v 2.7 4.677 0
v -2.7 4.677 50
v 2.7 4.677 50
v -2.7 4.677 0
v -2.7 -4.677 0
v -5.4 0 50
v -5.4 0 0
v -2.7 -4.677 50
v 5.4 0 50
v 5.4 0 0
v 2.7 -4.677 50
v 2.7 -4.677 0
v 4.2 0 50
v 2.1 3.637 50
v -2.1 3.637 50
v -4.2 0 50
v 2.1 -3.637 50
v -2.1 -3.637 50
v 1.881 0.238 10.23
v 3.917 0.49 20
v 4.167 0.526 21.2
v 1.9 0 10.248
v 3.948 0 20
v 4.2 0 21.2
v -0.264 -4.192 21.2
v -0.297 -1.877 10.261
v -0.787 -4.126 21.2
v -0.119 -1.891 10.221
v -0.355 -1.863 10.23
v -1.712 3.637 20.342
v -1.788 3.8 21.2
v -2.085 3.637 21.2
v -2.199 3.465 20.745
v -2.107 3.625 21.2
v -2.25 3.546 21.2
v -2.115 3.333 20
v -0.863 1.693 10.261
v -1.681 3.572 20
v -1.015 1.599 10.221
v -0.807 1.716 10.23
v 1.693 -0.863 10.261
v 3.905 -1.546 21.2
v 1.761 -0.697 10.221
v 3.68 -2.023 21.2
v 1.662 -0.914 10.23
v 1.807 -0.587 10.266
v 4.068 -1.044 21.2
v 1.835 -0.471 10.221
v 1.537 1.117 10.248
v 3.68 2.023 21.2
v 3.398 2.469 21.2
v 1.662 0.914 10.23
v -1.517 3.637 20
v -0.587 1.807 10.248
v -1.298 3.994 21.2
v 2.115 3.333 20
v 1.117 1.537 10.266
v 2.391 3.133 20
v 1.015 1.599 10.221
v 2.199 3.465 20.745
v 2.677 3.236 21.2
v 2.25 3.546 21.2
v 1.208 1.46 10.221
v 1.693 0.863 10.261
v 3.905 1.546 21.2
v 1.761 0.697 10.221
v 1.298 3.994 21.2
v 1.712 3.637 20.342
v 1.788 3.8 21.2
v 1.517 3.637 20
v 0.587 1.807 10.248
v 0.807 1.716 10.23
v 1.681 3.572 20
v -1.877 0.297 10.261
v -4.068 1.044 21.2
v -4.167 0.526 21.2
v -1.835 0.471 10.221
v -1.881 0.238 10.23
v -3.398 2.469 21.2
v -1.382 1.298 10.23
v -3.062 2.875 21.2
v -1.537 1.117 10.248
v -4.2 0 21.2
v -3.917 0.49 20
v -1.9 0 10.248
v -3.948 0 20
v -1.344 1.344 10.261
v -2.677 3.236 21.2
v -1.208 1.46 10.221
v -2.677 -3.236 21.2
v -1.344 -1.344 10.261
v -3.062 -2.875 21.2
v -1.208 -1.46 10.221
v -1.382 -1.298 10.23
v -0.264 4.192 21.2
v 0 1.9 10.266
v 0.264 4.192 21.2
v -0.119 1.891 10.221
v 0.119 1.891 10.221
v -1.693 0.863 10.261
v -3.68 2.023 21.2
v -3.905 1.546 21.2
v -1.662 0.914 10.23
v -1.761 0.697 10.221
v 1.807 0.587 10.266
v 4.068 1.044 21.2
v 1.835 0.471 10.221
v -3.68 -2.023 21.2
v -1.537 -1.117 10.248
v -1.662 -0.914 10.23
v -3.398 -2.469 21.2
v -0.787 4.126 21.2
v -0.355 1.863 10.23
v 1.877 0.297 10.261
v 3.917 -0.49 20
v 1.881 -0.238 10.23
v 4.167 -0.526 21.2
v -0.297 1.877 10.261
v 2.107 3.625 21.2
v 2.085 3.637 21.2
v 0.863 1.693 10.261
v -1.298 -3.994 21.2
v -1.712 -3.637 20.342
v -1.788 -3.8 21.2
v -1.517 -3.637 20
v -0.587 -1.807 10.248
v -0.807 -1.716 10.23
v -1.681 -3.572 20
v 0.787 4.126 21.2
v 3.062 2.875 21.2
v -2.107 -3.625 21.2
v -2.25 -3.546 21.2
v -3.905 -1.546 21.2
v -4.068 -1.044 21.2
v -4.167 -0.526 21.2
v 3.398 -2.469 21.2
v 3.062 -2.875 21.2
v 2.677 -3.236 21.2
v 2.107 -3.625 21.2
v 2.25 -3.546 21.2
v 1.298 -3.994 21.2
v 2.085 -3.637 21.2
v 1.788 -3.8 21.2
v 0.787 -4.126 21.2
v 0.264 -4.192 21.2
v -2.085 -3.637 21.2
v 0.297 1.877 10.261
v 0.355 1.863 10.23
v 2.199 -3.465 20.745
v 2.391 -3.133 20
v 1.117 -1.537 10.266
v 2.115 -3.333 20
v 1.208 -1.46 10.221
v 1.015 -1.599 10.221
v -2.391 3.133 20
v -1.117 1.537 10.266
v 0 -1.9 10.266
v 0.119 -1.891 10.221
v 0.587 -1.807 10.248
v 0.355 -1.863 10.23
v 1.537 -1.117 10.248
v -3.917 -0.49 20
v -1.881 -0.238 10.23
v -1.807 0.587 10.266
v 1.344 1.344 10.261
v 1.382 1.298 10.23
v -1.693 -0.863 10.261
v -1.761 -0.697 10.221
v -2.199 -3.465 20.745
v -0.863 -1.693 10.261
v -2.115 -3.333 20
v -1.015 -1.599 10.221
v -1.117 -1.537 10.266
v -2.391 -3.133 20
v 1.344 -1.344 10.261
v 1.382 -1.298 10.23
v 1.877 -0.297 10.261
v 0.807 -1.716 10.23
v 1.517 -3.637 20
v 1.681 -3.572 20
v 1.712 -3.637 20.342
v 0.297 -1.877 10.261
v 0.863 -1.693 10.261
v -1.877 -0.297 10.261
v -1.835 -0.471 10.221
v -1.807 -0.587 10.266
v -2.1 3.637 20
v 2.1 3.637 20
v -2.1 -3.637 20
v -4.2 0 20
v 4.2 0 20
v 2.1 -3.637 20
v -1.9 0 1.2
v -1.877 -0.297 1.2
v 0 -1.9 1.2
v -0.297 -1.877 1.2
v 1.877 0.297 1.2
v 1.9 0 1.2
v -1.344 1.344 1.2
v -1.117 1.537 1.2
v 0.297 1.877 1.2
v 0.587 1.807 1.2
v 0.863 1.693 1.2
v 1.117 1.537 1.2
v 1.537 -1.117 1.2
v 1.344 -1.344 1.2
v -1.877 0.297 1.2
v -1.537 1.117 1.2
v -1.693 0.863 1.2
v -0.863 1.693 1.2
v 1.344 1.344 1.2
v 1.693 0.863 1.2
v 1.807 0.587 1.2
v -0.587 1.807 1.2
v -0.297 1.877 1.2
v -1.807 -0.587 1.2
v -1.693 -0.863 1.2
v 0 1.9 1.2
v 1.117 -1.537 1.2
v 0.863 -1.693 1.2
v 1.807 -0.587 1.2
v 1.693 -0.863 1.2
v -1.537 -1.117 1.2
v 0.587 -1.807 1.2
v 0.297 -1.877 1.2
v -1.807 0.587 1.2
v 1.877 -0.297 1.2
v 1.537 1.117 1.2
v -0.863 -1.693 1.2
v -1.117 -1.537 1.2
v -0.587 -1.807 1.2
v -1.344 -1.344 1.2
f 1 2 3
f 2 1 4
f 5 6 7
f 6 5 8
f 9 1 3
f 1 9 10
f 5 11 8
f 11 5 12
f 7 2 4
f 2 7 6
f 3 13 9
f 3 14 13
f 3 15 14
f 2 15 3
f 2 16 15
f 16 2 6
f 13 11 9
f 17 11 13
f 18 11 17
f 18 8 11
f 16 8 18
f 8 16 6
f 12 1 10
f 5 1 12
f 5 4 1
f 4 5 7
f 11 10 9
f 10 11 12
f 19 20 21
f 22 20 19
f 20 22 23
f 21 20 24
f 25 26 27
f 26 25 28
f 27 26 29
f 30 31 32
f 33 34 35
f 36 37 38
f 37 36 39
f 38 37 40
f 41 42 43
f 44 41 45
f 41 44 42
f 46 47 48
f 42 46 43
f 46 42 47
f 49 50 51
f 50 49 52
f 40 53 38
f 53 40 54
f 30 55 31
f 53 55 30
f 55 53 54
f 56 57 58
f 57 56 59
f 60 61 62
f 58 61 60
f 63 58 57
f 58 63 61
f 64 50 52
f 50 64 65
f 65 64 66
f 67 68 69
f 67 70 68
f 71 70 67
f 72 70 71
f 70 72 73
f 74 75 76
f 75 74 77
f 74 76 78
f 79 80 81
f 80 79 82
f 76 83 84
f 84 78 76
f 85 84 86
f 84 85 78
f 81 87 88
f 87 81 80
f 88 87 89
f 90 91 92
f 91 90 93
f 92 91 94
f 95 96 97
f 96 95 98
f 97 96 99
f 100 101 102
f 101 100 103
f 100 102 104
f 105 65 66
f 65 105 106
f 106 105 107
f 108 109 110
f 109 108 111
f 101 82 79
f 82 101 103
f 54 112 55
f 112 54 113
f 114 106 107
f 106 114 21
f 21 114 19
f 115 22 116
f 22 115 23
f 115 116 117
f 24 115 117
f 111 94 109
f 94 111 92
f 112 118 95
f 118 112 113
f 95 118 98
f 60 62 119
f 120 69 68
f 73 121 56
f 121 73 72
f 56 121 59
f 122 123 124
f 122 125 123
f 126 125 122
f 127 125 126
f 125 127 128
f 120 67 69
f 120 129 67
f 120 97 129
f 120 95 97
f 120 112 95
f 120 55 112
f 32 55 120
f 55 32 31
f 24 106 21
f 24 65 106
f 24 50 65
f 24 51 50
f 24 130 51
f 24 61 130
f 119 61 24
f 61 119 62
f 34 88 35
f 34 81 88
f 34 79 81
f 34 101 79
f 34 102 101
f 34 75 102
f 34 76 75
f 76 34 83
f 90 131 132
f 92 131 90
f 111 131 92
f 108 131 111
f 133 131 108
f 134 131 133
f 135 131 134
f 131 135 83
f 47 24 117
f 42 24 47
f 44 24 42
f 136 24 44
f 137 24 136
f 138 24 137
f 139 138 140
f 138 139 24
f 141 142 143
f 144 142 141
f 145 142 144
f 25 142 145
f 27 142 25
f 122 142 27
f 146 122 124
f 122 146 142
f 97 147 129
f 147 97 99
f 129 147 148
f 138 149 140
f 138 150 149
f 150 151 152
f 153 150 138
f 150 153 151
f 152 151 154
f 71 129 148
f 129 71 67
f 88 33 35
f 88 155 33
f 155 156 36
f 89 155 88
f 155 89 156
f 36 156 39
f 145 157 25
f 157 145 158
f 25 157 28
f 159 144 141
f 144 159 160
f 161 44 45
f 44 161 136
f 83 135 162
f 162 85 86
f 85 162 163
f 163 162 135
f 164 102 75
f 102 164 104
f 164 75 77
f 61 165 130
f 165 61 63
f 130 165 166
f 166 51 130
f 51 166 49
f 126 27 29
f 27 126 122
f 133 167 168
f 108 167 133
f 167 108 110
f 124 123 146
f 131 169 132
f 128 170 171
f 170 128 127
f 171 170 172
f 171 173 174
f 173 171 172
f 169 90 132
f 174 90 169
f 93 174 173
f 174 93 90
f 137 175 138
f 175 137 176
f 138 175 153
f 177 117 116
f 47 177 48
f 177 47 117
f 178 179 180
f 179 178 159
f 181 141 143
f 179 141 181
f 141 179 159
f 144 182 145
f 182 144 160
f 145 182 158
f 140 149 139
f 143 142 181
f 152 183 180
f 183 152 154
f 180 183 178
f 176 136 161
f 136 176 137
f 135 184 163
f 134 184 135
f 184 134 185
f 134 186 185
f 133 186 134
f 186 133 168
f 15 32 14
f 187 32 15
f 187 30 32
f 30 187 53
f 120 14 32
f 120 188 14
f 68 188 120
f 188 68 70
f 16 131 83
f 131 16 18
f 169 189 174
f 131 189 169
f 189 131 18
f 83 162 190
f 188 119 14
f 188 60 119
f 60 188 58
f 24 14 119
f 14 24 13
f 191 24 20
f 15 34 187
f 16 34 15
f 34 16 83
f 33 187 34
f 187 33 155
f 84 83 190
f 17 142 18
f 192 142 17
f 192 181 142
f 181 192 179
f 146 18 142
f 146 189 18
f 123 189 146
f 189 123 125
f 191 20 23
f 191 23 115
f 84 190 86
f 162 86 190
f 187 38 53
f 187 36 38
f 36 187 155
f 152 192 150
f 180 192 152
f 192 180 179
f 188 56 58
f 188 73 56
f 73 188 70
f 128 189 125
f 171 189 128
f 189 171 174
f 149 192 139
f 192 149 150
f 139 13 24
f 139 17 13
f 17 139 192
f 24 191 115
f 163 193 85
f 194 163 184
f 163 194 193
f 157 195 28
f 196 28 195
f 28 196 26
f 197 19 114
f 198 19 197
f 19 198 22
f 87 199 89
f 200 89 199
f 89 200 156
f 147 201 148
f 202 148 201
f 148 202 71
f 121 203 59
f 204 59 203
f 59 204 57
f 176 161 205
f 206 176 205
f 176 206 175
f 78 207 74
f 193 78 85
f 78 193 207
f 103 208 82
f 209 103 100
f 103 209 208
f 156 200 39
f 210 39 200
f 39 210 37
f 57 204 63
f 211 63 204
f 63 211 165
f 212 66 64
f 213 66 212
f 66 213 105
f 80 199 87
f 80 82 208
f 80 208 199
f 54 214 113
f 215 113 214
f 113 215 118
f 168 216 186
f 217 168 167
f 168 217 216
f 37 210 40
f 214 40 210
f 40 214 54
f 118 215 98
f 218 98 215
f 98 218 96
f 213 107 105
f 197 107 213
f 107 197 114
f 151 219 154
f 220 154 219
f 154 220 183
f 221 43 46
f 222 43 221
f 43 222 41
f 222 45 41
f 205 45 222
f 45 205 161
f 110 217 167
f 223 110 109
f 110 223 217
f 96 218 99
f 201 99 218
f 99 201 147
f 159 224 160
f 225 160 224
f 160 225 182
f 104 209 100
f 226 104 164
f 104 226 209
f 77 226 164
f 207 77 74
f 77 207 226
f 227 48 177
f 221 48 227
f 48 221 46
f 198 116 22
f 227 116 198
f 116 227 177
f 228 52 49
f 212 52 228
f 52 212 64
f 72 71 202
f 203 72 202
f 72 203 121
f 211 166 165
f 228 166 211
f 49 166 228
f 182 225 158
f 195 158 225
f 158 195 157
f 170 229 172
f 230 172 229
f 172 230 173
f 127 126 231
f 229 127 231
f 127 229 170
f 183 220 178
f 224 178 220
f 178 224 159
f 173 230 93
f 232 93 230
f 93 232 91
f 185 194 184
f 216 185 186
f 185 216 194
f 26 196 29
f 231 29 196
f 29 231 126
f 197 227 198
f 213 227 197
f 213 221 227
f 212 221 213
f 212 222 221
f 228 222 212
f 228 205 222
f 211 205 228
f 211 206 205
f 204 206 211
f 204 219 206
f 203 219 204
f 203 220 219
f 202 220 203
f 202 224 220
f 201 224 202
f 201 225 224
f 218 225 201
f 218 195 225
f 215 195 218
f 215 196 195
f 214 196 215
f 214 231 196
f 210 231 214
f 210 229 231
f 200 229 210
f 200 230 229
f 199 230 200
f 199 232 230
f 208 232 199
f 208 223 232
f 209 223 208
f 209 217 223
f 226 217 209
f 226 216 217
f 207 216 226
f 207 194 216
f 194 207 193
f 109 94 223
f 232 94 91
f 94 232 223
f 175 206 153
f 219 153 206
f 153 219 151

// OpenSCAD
pencil_dia = 7.6;
tolerance = .4;
cone_h =20;


difference(){
    cylinder(d=pencil_dia+2.4+ 2*tolerance, h=50,$fn=6);
    translate([0,0,1.2])cylinder(h=20,d1=0,d2 =pencil_dia+2*tolerance, $fn=50);
    translate([0,0,20])cylinder(h=50, d=pencil_dia+2*tolerance,$fn=6);
    translate([0,0,1.2])cylinder(h=50, d=pencil_dia/2,$fn=40);
    }
